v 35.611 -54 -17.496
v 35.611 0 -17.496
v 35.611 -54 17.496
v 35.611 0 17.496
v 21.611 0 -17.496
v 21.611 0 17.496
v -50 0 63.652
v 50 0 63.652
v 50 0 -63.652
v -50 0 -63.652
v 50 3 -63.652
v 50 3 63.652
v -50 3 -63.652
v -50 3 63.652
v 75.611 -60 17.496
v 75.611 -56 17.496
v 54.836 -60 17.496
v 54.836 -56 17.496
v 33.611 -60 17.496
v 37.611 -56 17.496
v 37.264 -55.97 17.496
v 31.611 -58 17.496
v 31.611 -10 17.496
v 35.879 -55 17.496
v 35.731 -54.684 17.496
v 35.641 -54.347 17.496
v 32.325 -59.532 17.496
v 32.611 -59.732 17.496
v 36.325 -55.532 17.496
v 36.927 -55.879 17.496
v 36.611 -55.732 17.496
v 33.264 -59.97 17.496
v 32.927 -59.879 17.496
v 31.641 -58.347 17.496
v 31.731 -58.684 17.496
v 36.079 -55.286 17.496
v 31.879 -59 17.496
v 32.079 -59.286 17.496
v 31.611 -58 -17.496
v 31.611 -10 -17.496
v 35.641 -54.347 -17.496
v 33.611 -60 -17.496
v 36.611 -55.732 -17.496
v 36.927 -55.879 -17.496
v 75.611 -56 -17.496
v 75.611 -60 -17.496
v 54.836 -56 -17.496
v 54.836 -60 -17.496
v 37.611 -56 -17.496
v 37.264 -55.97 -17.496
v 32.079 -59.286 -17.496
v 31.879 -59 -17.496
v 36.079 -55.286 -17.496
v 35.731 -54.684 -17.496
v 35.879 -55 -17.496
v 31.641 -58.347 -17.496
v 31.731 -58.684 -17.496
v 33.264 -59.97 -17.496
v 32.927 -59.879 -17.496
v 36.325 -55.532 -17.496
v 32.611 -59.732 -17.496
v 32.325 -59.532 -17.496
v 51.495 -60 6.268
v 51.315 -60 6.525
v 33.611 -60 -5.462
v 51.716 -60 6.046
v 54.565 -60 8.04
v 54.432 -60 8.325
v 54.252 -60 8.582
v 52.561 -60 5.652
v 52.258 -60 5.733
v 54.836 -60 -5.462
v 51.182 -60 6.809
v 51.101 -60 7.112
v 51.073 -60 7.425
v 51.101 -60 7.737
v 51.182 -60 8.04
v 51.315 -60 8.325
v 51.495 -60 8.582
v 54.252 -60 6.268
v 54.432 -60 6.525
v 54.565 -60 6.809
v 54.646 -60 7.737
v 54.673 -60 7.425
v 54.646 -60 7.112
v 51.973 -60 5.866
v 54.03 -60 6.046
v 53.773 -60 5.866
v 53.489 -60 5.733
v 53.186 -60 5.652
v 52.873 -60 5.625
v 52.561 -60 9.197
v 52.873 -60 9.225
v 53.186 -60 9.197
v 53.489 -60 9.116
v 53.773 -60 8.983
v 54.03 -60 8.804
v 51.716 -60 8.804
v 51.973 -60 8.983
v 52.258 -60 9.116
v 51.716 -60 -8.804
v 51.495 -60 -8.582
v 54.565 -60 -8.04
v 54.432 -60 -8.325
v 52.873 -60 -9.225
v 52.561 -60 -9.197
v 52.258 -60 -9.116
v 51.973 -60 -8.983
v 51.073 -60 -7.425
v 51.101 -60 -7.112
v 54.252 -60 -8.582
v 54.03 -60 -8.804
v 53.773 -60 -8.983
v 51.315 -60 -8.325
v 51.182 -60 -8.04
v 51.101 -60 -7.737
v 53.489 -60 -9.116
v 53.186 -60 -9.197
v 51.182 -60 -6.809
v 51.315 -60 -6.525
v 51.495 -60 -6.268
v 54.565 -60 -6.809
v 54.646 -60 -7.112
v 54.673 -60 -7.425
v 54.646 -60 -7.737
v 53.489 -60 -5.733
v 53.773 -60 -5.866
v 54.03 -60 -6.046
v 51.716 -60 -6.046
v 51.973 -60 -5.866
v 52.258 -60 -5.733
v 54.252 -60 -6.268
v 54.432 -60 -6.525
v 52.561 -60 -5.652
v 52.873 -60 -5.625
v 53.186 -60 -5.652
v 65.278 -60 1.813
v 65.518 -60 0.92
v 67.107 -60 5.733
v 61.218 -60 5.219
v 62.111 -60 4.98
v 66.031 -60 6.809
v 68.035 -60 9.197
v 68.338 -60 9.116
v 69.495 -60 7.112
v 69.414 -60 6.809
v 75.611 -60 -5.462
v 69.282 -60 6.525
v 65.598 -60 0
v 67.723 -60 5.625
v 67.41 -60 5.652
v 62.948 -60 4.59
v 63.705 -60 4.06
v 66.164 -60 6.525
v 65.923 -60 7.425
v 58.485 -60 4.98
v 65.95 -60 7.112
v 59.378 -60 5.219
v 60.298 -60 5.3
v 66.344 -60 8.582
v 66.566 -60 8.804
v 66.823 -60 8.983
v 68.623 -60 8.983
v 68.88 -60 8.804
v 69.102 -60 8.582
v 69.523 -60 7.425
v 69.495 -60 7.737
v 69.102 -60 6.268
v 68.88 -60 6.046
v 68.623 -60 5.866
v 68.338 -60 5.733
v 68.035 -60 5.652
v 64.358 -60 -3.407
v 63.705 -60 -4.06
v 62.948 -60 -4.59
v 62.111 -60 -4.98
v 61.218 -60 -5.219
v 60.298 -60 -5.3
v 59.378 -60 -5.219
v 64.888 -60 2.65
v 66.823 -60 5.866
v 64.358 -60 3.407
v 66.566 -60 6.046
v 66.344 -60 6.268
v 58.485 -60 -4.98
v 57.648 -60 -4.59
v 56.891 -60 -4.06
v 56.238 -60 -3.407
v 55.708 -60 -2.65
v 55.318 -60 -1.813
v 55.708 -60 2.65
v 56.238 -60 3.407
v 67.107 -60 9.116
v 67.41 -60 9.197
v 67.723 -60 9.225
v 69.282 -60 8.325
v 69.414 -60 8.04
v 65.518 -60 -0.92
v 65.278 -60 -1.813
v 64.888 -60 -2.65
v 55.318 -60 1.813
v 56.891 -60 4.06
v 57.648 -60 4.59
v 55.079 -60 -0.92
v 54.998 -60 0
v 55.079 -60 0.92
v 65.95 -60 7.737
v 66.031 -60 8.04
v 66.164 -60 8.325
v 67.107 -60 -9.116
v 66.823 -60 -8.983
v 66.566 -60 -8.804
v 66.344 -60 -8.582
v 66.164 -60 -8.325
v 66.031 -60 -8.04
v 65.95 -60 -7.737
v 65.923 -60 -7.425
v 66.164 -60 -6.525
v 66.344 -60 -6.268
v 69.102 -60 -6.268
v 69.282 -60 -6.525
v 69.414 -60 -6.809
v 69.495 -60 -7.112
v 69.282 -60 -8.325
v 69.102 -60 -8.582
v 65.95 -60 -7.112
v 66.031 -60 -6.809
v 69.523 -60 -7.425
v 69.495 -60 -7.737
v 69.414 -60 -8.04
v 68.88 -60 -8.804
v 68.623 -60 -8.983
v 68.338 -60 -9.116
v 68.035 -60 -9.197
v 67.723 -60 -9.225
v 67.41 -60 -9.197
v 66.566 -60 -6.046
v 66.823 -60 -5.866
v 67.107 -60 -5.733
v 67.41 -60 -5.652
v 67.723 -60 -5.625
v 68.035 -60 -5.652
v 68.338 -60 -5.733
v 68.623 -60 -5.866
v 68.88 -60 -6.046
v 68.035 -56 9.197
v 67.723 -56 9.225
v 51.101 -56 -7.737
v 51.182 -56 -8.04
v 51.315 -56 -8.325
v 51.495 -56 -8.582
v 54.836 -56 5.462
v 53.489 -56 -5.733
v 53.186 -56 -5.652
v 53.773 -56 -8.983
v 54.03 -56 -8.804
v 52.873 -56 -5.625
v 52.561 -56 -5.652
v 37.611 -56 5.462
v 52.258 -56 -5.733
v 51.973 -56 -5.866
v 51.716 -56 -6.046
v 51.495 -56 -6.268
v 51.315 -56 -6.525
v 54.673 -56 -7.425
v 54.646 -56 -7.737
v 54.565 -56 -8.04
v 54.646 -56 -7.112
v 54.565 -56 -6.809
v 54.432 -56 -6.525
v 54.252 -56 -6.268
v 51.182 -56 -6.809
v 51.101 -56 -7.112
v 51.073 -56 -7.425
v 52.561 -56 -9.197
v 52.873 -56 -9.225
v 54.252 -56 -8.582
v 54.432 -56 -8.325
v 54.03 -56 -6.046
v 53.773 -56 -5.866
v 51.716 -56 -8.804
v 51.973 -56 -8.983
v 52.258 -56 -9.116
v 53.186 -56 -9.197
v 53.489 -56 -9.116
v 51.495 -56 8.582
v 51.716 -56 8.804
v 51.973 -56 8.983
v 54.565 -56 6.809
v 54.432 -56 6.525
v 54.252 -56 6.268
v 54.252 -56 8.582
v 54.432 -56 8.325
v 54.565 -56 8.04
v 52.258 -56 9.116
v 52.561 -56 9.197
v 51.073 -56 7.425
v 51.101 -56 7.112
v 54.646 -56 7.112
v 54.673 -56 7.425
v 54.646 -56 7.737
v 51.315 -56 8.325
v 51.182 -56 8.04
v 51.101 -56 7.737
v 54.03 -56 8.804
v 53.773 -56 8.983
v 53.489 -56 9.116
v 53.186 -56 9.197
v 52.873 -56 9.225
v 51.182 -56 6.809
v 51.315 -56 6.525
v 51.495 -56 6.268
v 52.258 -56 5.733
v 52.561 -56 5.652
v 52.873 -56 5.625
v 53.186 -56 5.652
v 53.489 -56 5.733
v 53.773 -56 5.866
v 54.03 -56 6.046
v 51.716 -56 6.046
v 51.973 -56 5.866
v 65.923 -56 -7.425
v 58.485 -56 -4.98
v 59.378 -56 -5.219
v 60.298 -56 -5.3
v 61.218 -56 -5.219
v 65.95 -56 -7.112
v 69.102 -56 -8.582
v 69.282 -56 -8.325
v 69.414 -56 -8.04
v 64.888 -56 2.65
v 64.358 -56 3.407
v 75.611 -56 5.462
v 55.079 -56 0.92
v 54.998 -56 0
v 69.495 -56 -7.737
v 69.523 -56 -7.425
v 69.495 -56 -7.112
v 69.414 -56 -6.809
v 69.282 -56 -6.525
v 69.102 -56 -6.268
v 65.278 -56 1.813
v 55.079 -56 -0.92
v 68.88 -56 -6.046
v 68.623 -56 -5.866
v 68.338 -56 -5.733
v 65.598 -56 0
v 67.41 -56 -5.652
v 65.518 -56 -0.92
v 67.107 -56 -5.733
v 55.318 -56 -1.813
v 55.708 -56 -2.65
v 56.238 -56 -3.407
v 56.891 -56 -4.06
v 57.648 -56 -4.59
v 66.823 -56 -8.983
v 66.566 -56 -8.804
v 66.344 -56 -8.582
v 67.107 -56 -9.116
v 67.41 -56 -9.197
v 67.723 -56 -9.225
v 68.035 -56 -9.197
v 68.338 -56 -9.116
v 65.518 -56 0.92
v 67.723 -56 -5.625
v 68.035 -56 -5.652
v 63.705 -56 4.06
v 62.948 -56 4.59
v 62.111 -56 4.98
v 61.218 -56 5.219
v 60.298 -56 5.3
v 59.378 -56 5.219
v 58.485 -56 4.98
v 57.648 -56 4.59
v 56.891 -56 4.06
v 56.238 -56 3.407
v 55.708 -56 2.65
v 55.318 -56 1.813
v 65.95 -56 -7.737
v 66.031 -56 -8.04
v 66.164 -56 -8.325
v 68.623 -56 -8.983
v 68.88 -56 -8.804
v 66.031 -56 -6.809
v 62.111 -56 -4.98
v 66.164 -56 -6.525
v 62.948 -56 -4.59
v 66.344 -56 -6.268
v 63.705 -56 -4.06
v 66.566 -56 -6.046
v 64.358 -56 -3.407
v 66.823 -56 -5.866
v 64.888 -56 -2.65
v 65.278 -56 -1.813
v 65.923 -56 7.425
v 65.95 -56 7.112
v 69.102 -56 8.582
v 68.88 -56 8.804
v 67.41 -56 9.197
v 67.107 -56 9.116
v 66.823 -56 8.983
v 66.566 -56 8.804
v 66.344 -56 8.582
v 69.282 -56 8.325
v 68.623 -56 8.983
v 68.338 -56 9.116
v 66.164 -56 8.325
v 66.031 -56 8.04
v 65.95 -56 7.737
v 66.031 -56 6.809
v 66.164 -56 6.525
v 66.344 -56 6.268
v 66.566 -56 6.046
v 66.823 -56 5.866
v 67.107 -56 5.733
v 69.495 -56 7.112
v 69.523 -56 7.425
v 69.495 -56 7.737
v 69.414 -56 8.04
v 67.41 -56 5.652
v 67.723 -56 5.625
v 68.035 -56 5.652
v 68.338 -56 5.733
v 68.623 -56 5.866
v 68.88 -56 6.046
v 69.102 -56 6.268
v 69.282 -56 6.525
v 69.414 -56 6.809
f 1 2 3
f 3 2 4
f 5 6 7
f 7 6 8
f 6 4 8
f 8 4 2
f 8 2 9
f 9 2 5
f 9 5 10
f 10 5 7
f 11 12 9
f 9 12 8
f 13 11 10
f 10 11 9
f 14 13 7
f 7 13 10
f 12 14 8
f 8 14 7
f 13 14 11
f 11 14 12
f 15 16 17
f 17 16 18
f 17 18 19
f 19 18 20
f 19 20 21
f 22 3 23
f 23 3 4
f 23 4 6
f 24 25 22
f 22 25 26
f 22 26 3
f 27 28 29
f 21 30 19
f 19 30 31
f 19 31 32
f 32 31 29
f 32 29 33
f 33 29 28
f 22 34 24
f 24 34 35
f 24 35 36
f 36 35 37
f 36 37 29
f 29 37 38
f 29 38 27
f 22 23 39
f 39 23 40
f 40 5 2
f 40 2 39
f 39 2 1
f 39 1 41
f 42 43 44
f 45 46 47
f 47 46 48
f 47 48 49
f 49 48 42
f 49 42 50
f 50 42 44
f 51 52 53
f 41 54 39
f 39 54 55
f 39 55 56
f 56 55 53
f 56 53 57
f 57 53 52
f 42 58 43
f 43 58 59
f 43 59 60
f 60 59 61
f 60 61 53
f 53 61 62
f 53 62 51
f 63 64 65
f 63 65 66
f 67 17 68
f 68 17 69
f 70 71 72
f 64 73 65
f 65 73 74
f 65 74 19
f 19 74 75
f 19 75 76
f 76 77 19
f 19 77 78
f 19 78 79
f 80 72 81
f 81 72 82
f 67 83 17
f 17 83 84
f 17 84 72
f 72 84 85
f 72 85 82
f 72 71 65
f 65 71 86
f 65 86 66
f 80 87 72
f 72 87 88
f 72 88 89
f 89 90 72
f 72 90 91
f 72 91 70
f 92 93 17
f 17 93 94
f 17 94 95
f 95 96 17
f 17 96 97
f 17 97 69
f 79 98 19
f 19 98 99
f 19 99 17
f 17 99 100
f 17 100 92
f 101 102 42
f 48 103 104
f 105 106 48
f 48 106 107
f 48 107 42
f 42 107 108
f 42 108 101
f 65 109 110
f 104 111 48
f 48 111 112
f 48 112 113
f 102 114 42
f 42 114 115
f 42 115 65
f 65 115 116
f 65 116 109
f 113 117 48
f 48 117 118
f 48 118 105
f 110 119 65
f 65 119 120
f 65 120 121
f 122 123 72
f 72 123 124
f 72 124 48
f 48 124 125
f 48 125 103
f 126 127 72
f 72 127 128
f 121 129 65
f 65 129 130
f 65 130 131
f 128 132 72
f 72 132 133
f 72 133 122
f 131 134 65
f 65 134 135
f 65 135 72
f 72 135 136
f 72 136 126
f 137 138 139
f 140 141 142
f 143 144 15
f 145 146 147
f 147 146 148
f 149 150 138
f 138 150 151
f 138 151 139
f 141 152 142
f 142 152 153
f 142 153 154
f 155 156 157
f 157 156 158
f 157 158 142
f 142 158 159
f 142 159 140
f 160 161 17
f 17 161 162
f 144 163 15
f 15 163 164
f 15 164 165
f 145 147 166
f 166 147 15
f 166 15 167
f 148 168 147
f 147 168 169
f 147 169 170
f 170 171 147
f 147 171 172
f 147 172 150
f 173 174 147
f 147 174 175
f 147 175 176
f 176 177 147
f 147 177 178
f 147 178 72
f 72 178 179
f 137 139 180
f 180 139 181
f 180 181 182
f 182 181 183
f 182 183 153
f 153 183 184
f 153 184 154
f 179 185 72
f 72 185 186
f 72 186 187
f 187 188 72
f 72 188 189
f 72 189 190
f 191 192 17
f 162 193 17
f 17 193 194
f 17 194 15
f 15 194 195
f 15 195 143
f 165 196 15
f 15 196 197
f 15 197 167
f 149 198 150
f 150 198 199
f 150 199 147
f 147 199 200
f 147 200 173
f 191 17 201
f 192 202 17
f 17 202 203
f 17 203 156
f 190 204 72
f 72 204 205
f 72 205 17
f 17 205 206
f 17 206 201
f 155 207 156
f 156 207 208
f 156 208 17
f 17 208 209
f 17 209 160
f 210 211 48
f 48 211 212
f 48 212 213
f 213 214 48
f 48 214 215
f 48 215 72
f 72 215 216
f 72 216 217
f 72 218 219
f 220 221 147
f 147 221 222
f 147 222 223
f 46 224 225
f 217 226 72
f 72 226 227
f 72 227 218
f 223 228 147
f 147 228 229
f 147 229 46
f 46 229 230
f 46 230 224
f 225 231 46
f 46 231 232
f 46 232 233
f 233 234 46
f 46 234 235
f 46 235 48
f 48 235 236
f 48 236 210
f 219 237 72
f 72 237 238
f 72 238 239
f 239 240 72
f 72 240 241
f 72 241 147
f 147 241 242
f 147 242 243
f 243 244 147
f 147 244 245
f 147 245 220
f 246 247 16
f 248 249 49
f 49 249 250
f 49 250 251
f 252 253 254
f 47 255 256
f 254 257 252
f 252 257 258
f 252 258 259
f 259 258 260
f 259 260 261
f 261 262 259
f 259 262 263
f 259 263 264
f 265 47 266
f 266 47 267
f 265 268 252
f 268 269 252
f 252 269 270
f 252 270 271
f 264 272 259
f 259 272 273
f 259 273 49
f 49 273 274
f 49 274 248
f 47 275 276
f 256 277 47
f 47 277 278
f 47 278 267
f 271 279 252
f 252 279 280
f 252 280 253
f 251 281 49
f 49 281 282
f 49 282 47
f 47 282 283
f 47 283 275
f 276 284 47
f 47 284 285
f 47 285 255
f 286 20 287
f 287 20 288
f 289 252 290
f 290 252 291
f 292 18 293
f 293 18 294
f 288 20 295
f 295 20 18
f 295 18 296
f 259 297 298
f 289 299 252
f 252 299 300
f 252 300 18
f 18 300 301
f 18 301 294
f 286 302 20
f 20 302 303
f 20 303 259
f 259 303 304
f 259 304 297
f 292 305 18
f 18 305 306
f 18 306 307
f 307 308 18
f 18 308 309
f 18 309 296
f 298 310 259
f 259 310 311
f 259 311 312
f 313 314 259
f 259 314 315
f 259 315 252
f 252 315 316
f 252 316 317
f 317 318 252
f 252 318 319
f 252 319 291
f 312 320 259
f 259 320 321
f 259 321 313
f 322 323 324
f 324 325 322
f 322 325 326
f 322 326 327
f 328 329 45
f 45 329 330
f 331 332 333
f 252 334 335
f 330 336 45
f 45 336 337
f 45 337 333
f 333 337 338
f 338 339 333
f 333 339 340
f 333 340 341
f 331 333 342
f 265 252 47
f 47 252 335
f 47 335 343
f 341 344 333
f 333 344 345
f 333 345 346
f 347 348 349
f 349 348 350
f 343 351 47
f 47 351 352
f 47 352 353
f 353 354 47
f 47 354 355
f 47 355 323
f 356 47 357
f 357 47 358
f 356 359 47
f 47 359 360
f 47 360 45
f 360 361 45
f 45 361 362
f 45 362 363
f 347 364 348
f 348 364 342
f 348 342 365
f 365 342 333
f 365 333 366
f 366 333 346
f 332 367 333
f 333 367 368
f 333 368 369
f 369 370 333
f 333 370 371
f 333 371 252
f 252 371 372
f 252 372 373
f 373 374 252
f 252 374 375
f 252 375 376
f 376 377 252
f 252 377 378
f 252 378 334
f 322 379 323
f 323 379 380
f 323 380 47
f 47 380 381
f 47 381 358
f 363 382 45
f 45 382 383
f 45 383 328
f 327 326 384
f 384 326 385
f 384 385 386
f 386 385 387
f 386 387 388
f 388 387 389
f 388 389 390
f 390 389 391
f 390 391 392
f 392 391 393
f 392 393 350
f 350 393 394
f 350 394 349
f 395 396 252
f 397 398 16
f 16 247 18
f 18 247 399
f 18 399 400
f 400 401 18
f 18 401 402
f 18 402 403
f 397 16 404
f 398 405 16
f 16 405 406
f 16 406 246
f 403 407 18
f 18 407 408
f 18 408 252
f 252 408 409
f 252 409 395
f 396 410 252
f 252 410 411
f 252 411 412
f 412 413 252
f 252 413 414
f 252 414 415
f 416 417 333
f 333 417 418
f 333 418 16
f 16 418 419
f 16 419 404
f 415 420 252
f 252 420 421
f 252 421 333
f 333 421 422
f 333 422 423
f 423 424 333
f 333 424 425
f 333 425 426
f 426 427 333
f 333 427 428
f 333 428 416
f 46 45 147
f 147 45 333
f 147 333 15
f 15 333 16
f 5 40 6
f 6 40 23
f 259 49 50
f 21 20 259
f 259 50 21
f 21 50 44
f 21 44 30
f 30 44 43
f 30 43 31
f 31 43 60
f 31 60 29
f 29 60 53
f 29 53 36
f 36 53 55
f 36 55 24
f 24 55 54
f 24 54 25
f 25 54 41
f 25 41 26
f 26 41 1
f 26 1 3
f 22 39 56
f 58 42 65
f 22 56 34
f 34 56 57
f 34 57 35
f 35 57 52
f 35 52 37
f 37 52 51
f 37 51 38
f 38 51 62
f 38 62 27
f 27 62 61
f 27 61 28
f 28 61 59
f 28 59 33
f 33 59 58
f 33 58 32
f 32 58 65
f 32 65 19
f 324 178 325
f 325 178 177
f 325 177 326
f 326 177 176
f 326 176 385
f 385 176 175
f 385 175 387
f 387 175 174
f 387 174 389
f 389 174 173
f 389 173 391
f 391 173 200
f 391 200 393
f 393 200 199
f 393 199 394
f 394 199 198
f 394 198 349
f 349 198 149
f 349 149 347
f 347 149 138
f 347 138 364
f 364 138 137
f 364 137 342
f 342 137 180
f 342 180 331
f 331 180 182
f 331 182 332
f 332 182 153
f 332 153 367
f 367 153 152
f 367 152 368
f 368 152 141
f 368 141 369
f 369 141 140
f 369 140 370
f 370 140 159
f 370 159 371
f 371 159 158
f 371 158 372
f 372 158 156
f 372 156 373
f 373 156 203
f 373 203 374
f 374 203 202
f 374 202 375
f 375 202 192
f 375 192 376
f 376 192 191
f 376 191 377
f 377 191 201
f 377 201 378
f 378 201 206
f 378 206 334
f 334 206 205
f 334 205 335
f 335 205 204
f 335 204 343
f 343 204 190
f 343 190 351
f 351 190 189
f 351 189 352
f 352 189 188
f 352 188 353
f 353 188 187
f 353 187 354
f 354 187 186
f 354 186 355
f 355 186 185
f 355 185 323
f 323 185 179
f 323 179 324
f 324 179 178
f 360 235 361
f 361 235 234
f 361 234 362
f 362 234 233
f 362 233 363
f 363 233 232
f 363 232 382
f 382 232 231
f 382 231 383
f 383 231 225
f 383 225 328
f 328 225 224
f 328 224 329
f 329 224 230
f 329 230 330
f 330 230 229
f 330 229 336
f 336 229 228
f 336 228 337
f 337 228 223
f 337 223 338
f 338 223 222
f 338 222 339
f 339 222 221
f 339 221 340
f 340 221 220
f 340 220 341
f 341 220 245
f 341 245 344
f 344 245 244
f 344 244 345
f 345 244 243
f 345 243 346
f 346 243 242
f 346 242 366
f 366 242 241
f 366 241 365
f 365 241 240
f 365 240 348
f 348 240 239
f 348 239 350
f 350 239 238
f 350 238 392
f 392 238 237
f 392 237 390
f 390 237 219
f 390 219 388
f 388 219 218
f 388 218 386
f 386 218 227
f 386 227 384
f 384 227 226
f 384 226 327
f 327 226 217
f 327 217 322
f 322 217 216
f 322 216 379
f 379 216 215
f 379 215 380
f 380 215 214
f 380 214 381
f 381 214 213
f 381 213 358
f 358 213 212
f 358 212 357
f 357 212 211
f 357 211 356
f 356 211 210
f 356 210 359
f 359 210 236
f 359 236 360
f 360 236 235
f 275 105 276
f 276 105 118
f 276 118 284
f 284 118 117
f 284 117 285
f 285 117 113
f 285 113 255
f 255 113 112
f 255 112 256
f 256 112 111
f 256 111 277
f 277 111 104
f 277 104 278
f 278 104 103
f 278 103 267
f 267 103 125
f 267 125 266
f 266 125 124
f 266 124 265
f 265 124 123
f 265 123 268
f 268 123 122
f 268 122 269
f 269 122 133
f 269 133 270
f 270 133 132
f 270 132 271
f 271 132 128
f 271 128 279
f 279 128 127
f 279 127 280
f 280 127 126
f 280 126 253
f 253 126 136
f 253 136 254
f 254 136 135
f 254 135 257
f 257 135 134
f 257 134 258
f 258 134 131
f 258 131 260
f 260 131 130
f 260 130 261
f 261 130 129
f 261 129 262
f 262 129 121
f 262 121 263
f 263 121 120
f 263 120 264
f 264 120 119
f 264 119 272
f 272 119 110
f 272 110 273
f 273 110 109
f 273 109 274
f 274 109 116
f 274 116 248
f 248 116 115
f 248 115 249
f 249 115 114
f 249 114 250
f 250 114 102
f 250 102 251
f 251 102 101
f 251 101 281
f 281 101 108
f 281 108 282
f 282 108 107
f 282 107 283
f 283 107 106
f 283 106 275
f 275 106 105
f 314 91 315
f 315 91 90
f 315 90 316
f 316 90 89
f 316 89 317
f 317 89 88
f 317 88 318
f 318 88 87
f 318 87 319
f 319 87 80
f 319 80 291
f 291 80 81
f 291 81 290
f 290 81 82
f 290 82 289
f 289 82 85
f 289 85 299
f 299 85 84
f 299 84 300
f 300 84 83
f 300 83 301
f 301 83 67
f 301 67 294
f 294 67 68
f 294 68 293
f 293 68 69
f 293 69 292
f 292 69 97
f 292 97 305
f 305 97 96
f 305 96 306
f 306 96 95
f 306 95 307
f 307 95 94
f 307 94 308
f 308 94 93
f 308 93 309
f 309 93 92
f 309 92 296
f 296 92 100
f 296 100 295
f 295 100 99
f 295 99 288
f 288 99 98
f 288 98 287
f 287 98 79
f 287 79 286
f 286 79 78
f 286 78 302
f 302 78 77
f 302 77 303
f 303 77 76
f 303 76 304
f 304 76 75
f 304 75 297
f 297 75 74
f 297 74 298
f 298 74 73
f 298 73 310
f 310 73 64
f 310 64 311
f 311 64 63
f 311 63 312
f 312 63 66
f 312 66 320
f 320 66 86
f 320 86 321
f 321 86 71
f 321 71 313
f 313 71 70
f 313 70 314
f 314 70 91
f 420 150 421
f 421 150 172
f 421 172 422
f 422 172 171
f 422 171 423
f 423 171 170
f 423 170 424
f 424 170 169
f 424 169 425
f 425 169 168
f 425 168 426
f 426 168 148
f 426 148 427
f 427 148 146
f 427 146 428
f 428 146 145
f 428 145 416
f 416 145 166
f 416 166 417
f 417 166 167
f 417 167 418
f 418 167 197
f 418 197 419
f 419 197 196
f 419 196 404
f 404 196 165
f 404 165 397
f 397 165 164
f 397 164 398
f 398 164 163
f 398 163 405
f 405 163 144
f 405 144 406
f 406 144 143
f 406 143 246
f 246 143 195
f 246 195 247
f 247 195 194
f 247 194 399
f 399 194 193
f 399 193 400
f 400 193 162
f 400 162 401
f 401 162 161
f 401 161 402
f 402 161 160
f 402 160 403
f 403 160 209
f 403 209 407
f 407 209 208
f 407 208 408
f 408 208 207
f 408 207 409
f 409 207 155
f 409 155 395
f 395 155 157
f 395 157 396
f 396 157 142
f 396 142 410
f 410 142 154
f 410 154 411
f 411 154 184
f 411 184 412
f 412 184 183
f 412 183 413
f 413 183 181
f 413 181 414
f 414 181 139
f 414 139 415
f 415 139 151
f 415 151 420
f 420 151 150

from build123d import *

# Parameters (mm, degrees)
CROQUIS1_W              = 100
CROQUIS1_H              = 127.304752994
SALIENTE_EXTRUIR1_DEPTH = 3
CROQUIS2_W              = 4
CROQUIS2_H              = 34.992450208
SALIENTE_EXTRUIR2_DEPTH = 60
CROQUIS4_W              = 34.992450208
CROQUIS4_H              = 4
SALIENTE_EXTRUIR3_DEPTH = 40
CHAFL_N1_SIZE           = 10
REDONDEO1_R             = 2
CROQUIS5_R              = 5.3
CROQUIS5_R_2            = 1.8
CORTAR_EXTRUIR2_DEPTH   = 40


with BuildPart() as part:
    # Croquis1 → Saliente-Extruir1 (new body)
    with BuildSketch(Plane(origin=(0, 0, 0), x_dir=(1, 0, 0), z_dir=(0, 1, 0))):
        Rectangle(CROQUIS1_W, CROQUIS1_H)
    extrude(amount=SALIENTE_EXTRUIR1_DEPTH)

    # Croquis2 → Saliente-Extruir2 (add)
    with BuildSketch(Plane.XZ):
        with Locations((33.610839978, 0)):
            Rectangle(CROQUIS2_W, CROQUIS2_H)
    extrude(amount=SALIENTE_EXTRUIR2_DEPTH)

    # Croquis4 → Saliente-Extruir3 (add)
    with BuildSketch(Plane(origin=(35.610839978, 0, 0), x_dir=(0, 0, -1), z_dir=(1, 0, 0))):
        with Locations((0, -58)):
            Rectangle(CROQUIS4_W, CROQUIS4_H)
    extrude(amount=SALIENTE_EXTRUIR3_DEPTH)

    # Chaflán1
    chafl_n1_edges = [part.edges().sort_by_distance(p)[0] for p in [
        (31.610839978, 0, 0),
    ]]
    chamfer(chafl_n1_edges, length=CHAFL_N1_SIZE)

    # Redondeo1
    redondeo1_edges = [part.edges().sort_by_distance(p)[0] for p in [
        (31.610839978, -60, 0),
        (35.610839978, -56, 0),
    ]]
    fillet(redondeo1_edges, radius=REDONDEO1_R)

    # Croquis5 → Cortar-Extruir2 (cut)
    with BuildSketch(Plane.XZ.offset(60)):
        with Locations((60.298029847, 0)):
            Circle(CROQUIS5_R)
        with Locations((67.72265105, -7.424621202)):
            Circle(CROQUIS5_R_2)
        with Locations((52.873408645, -7.424621202)):
            Circle(CROQUIS5_R_2)
        with Locations((52.873408645, 7.424621202)):
            Circle(CROQUIS5_R_2)
        with Locations((67.72265105, 7.424621202)):
            Circle(CROQUIS5_R_2)
    extrude(amount=-CORTAR_EXTRUIR2_DEPTH, mode=Mode.SUBTRACT)


solid = part.part
